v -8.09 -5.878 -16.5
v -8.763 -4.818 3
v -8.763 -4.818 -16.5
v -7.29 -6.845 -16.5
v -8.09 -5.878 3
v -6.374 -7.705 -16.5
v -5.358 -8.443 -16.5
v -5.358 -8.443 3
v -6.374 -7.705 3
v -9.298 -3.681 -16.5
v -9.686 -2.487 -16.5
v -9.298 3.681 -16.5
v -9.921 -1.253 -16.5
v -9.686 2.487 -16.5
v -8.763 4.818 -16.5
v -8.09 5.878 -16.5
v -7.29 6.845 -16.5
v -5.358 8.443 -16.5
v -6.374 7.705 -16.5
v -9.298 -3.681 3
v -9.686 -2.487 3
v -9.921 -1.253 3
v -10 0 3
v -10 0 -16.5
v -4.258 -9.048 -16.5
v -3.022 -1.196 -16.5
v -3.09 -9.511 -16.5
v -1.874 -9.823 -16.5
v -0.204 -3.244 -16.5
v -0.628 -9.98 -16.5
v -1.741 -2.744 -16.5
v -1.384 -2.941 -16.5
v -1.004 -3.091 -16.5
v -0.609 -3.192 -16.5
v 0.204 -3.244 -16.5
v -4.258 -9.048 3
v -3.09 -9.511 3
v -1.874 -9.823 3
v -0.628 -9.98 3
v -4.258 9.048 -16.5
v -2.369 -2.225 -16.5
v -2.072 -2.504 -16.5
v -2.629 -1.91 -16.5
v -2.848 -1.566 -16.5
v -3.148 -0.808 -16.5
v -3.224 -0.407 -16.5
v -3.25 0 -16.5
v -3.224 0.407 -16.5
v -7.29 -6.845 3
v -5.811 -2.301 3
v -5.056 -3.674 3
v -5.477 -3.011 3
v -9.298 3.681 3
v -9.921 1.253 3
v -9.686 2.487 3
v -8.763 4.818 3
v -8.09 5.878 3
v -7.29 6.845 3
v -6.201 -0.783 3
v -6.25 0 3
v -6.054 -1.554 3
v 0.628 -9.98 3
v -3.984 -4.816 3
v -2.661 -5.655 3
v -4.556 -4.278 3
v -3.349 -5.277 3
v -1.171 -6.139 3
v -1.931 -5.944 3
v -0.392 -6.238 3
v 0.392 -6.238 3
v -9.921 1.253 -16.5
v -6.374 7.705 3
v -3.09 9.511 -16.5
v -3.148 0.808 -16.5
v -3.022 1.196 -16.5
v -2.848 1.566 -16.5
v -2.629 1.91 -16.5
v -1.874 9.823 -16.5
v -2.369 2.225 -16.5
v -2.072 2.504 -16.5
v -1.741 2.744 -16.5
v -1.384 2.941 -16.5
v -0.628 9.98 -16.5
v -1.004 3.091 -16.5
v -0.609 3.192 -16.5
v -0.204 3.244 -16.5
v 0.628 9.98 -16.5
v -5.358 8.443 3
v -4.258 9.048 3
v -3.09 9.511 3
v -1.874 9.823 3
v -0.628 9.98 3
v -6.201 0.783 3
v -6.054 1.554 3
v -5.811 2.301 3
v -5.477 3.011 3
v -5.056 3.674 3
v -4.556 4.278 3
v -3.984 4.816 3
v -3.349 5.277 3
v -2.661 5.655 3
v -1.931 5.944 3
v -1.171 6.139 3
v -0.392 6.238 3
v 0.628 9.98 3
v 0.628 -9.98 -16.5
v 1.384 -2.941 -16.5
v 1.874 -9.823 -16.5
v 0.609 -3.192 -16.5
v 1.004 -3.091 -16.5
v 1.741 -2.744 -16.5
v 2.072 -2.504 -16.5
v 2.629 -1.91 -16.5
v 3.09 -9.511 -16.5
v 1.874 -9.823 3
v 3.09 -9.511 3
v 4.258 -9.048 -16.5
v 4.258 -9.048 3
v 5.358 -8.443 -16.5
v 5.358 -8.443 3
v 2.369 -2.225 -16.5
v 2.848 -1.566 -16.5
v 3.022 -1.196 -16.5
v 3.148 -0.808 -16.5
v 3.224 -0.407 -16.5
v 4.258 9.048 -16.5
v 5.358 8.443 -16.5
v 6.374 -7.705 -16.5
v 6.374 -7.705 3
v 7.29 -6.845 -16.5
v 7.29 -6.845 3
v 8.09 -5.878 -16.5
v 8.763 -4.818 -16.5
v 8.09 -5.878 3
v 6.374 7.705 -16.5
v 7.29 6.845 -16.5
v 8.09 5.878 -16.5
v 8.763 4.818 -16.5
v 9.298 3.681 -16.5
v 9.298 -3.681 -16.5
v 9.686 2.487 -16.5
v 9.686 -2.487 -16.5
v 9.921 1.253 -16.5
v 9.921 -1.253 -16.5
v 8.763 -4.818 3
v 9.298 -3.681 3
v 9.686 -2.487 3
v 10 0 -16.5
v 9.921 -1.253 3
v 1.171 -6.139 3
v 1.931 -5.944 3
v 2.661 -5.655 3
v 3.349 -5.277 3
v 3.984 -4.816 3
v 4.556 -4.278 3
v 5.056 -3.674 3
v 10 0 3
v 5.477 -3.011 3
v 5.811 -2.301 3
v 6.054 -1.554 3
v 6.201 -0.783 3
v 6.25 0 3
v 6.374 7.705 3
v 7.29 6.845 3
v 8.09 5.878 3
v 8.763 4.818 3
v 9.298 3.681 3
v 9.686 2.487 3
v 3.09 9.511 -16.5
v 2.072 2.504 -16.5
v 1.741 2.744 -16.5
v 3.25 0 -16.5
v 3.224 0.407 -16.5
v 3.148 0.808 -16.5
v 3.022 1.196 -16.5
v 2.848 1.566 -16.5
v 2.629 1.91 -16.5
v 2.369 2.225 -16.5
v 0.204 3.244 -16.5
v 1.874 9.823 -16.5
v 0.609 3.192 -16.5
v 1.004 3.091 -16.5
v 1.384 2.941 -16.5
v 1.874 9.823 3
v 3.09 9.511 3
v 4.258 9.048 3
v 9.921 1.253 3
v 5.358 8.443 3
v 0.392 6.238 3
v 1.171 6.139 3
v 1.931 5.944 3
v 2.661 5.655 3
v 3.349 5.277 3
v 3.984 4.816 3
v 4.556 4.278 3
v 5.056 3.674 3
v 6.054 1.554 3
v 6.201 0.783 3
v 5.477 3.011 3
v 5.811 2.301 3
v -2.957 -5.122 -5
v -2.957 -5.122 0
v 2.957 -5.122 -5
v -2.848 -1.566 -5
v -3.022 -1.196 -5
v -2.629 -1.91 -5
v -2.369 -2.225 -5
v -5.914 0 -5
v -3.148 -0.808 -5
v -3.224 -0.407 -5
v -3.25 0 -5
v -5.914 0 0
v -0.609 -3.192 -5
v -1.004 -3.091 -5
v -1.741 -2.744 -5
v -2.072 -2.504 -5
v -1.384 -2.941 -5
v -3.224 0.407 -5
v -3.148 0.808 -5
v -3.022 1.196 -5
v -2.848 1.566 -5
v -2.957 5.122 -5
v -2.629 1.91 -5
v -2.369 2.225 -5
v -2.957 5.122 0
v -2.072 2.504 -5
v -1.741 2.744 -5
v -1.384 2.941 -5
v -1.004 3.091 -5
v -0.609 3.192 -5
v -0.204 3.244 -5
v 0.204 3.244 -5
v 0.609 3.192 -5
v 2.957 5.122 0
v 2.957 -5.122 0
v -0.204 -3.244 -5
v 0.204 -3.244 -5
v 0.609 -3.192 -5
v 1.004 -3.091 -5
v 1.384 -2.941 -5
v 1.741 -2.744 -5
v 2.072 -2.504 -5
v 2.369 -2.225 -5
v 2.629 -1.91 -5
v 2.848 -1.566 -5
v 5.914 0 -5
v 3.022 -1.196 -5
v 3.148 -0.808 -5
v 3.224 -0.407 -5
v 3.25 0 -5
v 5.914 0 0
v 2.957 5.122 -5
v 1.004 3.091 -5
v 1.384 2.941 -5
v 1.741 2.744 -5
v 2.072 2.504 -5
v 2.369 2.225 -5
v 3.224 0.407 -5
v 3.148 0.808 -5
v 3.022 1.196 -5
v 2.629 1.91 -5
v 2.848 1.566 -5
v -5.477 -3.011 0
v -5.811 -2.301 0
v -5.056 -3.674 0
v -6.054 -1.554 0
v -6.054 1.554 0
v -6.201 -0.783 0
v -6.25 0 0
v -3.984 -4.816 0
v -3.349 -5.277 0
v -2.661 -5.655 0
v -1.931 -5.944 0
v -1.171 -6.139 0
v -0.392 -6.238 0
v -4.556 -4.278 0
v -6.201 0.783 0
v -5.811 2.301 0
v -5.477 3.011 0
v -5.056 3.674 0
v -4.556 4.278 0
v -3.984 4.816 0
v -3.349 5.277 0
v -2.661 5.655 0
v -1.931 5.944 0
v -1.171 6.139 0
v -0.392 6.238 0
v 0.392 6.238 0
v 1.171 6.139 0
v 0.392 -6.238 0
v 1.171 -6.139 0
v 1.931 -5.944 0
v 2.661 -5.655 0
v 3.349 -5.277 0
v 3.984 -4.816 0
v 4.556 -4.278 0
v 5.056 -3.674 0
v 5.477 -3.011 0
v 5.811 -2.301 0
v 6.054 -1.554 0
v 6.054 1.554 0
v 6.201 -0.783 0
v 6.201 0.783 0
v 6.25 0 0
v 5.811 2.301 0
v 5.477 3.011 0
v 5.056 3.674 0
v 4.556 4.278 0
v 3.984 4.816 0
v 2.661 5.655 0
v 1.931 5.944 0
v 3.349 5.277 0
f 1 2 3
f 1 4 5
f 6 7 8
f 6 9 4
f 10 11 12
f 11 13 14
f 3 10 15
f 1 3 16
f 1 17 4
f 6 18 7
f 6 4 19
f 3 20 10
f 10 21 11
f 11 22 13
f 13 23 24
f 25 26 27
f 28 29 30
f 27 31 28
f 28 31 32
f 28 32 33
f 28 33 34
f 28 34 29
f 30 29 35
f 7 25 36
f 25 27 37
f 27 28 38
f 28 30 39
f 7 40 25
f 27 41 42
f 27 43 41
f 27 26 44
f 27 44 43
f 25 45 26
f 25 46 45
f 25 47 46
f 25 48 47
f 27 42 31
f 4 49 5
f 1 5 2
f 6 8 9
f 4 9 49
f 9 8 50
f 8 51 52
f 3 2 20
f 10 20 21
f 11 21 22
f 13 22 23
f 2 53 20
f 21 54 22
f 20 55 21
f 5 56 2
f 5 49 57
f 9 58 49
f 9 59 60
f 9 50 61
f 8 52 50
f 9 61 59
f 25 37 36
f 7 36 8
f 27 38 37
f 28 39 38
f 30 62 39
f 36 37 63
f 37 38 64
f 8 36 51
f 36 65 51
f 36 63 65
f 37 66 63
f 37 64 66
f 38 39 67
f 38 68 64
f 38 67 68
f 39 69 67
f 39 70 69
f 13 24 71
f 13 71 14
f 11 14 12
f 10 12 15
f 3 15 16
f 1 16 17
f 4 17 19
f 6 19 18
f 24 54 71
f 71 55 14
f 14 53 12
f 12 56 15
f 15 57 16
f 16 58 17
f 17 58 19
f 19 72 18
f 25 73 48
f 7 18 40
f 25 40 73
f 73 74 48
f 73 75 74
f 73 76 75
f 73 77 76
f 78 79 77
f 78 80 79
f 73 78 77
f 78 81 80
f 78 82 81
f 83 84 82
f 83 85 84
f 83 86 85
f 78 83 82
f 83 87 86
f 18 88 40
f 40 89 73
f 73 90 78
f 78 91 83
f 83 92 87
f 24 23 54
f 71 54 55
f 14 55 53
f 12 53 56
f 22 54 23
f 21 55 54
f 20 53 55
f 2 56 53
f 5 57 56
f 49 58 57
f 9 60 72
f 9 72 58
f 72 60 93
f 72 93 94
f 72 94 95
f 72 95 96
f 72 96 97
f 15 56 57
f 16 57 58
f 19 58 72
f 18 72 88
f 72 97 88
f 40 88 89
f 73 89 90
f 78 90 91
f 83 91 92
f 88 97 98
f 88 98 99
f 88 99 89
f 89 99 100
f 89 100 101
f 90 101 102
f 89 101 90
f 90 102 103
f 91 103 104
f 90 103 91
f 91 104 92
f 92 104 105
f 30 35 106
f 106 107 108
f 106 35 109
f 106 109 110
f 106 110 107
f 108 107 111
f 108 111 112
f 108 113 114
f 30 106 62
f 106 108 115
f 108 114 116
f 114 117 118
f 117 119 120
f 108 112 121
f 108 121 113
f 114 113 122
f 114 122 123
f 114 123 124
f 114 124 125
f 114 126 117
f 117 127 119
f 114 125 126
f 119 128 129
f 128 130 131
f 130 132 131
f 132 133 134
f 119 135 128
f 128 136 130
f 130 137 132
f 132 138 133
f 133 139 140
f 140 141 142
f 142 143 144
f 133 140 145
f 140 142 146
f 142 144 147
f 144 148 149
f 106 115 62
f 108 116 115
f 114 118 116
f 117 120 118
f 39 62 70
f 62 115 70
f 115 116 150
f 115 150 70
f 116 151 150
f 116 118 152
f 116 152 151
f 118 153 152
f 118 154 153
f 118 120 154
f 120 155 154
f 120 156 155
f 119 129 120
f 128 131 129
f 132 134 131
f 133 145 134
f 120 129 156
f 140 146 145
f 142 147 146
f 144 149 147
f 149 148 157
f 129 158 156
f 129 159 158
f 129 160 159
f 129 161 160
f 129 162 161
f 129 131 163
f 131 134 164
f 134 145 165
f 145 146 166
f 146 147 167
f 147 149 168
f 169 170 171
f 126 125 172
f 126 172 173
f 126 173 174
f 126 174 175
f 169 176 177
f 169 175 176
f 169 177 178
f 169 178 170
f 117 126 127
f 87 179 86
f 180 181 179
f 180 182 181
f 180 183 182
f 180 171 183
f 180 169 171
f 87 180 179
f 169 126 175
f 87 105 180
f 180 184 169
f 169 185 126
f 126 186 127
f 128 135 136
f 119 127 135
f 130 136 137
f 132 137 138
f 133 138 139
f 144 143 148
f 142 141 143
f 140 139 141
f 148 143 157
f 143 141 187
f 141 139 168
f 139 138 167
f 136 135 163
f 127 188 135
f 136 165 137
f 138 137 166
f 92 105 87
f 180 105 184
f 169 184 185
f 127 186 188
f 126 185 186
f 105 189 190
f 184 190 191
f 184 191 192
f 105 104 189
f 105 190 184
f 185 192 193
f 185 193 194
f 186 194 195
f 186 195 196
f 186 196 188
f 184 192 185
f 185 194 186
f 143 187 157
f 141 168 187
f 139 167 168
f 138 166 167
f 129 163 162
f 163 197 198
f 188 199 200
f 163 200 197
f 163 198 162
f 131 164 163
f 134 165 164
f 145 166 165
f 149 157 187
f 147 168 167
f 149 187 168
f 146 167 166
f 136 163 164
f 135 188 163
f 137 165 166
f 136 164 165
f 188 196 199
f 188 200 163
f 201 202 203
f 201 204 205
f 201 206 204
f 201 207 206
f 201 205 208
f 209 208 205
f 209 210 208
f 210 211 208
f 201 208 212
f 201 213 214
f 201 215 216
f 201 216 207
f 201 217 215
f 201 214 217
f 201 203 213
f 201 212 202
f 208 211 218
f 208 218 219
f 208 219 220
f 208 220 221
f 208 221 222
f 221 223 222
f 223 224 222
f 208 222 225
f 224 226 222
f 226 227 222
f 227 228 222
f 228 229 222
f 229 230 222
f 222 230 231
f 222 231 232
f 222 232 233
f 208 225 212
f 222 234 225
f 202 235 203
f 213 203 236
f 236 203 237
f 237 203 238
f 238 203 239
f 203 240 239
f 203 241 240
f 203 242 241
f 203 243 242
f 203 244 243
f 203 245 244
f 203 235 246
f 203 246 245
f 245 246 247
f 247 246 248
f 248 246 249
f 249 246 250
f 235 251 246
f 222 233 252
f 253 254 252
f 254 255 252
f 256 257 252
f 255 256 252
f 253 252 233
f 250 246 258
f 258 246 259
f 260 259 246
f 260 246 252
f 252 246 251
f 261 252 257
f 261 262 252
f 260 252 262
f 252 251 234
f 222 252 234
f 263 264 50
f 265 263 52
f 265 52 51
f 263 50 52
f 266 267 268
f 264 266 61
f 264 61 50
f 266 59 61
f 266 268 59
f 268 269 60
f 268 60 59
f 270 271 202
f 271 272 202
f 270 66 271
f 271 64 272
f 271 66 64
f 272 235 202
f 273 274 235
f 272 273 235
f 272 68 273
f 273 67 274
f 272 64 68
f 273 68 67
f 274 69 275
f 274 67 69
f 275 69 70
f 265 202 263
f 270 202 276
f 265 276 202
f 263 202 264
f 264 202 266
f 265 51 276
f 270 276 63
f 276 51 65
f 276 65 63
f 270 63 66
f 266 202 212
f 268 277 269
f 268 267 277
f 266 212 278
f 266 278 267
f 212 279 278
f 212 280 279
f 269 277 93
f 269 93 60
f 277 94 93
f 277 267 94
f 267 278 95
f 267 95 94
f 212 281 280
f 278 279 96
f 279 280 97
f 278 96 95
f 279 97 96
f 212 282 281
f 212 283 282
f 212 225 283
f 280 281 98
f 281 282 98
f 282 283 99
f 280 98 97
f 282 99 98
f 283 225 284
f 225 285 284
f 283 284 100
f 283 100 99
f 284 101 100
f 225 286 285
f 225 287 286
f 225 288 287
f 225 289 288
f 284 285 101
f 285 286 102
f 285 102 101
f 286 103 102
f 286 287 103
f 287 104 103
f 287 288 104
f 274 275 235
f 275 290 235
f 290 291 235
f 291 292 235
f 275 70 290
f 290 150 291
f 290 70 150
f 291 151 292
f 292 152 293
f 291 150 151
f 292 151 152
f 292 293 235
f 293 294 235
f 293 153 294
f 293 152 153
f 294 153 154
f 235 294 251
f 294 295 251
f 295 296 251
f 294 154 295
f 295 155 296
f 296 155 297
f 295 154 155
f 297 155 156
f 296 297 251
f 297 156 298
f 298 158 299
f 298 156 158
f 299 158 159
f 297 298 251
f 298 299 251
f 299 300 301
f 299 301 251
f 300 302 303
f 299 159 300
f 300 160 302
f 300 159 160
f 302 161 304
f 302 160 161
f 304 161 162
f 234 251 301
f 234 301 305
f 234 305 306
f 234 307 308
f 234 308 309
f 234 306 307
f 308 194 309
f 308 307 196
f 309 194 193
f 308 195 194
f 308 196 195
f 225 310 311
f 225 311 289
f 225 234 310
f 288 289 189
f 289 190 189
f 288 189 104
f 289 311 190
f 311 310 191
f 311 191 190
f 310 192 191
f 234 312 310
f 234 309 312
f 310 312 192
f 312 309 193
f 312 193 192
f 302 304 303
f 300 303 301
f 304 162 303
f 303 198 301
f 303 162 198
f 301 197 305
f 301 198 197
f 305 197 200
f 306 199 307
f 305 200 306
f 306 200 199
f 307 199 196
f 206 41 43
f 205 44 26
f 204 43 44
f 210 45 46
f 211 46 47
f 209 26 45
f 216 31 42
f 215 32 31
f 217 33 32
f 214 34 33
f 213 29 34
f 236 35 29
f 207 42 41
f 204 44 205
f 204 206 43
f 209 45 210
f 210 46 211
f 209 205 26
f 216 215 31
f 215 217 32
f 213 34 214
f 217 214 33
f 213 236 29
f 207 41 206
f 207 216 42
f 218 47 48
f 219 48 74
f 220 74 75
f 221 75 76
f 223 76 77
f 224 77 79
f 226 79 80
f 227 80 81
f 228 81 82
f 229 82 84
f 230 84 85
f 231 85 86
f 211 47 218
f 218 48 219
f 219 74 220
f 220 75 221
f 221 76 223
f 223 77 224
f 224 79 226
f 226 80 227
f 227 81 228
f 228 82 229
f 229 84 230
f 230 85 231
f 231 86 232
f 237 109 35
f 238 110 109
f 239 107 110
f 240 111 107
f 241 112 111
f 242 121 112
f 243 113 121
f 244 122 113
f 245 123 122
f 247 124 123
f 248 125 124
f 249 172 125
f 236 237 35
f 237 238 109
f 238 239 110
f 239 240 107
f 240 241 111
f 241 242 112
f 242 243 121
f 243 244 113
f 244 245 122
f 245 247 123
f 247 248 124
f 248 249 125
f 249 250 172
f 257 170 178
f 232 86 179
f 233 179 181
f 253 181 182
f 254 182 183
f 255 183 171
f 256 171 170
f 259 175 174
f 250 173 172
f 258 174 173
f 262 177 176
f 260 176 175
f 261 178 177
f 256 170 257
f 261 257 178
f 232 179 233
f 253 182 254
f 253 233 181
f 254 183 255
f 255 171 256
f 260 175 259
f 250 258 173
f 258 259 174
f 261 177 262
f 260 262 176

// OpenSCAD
$fn = 50;

difference() {
	union() {
		translate(v = [0, 0, -16.5]) {
			cylinder(h = 19.5, r = 10.0);
		}
		#translate(v = [0, 0, -18.0]) {
			cylinder(h = 18, r = 2.875);
		}
	}
	union() {
		translate(v = [0, 0, 0]) {
			rotate(a = [0, 0, 0]) {
				difference() {
					union() {
						translate(v = [0, 0, -5]) {
							linear_extrude(height = 5) {
								polygon(points = [[5.914249999999999, 0.0], [2.957125, 5.1218907443321156], [-2.9571249999999982, 5.1218907443321156], [-5.914249999999999, 7.242867331857232e-16], [-2.9571250000000022, -5.121890744332115], [2.9571249999999956, -5.121890744332118]]);
							}
						}
					}
					union();
				}
			}
		}
		#cylinder(h = 3, r = 6.25);
		#translate(v = [0, 0, -100.0]) {
			cylinder(h = 200, r = 3.25);
		}
	}
}
